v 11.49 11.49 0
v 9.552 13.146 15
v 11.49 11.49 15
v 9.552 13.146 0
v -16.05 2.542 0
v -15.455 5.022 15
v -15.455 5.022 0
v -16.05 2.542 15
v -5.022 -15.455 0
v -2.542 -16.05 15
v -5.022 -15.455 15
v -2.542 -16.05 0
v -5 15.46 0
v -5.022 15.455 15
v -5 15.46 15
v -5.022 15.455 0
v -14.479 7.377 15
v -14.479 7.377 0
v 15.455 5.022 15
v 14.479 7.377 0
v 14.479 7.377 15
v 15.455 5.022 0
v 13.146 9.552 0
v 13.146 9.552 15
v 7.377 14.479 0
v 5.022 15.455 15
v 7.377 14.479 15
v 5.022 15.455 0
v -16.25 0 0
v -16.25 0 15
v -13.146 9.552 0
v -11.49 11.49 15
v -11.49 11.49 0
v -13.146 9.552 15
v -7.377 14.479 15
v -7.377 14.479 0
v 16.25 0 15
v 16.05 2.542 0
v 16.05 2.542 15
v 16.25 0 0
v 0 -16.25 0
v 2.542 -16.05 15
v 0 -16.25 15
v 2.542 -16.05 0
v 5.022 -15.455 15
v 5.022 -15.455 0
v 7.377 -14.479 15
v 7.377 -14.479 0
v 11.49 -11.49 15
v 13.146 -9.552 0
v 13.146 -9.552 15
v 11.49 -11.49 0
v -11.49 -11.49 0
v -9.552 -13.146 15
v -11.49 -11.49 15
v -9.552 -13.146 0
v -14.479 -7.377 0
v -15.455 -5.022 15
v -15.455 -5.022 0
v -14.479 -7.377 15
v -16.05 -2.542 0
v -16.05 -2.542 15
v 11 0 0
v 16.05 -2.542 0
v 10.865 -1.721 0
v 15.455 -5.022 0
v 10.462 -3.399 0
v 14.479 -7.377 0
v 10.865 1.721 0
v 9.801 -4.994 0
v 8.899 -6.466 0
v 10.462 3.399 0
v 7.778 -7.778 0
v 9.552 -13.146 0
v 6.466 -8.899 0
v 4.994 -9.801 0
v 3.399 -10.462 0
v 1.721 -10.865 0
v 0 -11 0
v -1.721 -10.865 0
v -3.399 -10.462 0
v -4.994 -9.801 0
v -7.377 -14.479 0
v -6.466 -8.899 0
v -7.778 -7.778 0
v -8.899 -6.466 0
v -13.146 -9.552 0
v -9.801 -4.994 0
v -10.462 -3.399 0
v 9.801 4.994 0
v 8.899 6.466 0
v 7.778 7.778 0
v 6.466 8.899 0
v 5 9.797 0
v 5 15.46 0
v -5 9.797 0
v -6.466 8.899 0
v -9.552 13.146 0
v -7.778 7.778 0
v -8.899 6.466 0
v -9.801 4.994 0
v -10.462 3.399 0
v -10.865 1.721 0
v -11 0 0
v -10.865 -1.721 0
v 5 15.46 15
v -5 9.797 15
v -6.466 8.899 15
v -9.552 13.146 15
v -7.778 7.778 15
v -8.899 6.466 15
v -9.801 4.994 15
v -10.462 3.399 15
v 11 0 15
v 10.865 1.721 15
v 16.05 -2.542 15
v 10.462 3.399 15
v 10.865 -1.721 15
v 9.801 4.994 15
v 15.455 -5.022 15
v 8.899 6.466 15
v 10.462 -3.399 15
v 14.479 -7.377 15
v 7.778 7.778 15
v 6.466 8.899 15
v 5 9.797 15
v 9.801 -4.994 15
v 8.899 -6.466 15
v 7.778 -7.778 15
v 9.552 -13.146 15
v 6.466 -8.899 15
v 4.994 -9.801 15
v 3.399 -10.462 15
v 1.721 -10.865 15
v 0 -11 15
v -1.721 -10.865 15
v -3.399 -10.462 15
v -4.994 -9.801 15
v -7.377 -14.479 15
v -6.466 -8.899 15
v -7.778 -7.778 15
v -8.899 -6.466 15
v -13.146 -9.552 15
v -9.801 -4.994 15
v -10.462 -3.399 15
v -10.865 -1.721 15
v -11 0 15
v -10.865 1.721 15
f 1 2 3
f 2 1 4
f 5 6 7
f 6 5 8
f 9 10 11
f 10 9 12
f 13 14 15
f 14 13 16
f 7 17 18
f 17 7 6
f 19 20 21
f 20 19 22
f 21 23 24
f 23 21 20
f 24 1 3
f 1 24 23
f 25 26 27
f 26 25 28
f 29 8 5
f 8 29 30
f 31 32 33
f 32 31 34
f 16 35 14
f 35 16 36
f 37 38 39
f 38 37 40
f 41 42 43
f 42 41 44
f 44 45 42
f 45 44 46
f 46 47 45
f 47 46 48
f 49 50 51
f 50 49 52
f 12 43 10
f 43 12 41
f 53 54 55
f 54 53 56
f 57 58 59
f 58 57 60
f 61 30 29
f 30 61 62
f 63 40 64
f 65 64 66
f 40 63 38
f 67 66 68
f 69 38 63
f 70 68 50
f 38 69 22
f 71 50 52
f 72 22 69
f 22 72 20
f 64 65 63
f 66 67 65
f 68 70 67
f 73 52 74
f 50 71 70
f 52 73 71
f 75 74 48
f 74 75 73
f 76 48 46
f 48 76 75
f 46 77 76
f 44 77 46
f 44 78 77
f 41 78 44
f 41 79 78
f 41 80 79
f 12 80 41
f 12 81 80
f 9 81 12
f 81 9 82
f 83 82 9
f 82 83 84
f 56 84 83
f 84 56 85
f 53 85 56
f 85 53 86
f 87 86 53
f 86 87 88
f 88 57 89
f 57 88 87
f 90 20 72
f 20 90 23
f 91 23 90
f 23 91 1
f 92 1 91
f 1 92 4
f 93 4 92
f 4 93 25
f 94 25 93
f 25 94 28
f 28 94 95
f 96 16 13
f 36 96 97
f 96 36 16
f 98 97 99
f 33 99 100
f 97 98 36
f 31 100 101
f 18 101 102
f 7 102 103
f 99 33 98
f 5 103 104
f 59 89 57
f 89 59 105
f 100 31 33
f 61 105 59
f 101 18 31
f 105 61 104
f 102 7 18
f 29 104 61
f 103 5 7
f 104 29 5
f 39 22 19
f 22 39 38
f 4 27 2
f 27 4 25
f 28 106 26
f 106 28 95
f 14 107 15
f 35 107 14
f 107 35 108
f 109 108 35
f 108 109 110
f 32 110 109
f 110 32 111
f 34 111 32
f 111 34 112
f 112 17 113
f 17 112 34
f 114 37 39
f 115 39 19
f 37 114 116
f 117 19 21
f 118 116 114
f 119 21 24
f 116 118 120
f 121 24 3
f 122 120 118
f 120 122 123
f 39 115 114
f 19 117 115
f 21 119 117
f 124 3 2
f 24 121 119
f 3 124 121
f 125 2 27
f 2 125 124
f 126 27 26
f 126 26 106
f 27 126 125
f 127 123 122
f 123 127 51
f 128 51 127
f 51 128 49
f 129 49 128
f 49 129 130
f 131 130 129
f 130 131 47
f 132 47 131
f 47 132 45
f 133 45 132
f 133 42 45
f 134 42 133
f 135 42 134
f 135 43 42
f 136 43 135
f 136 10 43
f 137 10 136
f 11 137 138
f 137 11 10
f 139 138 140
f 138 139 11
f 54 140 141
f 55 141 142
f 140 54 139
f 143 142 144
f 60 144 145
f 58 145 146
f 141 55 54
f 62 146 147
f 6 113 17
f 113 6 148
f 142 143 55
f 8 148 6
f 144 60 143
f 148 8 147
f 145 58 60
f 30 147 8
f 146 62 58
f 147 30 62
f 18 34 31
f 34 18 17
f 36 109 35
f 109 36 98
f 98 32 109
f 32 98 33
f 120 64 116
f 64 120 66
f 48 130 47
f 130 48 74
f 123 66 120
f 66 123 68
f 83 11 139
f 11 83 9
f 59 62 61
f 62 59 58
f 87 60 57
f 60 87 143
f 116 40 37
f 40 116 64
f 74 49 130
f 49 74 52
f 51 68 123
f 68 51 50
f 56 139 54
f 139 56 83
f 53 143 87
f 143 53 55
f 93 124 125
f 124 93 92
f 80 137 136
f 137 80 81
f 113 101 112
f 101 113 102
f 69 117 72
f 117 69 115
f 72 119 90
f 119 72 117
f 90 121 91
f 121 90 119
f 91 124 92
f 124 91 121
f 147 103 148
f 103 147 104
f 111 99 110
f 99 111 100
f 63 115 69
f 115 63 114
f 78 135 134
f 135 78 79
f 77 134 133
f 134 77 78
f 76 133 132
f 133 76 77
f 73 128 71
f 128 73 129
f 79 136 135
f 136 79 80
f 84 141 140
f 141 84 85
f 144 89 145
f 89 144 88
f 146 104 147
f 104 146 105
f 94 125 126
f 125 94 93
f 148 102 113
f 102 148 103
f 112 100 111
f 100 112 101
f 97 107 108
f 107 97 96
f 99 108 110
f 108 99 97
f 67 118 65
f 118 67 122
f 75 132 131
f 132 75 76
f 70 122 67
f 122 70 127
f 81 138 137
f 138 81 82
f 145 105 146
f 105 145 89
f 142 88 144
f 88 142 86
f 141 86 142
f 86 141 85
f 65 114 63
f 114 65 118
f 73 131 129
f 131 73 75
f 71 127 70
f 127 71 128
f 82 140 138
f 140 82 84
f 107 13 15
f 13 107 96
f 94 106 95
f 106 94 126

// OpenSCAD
// for the phone holder
difference() {
    cylinder(d=32.5,h=15,$fn=40);
    cylinder(d=22,h=50,center=true,$fn=40);

    translate([0,10,0])
    cube([10,20,50],center=true);
    
}
